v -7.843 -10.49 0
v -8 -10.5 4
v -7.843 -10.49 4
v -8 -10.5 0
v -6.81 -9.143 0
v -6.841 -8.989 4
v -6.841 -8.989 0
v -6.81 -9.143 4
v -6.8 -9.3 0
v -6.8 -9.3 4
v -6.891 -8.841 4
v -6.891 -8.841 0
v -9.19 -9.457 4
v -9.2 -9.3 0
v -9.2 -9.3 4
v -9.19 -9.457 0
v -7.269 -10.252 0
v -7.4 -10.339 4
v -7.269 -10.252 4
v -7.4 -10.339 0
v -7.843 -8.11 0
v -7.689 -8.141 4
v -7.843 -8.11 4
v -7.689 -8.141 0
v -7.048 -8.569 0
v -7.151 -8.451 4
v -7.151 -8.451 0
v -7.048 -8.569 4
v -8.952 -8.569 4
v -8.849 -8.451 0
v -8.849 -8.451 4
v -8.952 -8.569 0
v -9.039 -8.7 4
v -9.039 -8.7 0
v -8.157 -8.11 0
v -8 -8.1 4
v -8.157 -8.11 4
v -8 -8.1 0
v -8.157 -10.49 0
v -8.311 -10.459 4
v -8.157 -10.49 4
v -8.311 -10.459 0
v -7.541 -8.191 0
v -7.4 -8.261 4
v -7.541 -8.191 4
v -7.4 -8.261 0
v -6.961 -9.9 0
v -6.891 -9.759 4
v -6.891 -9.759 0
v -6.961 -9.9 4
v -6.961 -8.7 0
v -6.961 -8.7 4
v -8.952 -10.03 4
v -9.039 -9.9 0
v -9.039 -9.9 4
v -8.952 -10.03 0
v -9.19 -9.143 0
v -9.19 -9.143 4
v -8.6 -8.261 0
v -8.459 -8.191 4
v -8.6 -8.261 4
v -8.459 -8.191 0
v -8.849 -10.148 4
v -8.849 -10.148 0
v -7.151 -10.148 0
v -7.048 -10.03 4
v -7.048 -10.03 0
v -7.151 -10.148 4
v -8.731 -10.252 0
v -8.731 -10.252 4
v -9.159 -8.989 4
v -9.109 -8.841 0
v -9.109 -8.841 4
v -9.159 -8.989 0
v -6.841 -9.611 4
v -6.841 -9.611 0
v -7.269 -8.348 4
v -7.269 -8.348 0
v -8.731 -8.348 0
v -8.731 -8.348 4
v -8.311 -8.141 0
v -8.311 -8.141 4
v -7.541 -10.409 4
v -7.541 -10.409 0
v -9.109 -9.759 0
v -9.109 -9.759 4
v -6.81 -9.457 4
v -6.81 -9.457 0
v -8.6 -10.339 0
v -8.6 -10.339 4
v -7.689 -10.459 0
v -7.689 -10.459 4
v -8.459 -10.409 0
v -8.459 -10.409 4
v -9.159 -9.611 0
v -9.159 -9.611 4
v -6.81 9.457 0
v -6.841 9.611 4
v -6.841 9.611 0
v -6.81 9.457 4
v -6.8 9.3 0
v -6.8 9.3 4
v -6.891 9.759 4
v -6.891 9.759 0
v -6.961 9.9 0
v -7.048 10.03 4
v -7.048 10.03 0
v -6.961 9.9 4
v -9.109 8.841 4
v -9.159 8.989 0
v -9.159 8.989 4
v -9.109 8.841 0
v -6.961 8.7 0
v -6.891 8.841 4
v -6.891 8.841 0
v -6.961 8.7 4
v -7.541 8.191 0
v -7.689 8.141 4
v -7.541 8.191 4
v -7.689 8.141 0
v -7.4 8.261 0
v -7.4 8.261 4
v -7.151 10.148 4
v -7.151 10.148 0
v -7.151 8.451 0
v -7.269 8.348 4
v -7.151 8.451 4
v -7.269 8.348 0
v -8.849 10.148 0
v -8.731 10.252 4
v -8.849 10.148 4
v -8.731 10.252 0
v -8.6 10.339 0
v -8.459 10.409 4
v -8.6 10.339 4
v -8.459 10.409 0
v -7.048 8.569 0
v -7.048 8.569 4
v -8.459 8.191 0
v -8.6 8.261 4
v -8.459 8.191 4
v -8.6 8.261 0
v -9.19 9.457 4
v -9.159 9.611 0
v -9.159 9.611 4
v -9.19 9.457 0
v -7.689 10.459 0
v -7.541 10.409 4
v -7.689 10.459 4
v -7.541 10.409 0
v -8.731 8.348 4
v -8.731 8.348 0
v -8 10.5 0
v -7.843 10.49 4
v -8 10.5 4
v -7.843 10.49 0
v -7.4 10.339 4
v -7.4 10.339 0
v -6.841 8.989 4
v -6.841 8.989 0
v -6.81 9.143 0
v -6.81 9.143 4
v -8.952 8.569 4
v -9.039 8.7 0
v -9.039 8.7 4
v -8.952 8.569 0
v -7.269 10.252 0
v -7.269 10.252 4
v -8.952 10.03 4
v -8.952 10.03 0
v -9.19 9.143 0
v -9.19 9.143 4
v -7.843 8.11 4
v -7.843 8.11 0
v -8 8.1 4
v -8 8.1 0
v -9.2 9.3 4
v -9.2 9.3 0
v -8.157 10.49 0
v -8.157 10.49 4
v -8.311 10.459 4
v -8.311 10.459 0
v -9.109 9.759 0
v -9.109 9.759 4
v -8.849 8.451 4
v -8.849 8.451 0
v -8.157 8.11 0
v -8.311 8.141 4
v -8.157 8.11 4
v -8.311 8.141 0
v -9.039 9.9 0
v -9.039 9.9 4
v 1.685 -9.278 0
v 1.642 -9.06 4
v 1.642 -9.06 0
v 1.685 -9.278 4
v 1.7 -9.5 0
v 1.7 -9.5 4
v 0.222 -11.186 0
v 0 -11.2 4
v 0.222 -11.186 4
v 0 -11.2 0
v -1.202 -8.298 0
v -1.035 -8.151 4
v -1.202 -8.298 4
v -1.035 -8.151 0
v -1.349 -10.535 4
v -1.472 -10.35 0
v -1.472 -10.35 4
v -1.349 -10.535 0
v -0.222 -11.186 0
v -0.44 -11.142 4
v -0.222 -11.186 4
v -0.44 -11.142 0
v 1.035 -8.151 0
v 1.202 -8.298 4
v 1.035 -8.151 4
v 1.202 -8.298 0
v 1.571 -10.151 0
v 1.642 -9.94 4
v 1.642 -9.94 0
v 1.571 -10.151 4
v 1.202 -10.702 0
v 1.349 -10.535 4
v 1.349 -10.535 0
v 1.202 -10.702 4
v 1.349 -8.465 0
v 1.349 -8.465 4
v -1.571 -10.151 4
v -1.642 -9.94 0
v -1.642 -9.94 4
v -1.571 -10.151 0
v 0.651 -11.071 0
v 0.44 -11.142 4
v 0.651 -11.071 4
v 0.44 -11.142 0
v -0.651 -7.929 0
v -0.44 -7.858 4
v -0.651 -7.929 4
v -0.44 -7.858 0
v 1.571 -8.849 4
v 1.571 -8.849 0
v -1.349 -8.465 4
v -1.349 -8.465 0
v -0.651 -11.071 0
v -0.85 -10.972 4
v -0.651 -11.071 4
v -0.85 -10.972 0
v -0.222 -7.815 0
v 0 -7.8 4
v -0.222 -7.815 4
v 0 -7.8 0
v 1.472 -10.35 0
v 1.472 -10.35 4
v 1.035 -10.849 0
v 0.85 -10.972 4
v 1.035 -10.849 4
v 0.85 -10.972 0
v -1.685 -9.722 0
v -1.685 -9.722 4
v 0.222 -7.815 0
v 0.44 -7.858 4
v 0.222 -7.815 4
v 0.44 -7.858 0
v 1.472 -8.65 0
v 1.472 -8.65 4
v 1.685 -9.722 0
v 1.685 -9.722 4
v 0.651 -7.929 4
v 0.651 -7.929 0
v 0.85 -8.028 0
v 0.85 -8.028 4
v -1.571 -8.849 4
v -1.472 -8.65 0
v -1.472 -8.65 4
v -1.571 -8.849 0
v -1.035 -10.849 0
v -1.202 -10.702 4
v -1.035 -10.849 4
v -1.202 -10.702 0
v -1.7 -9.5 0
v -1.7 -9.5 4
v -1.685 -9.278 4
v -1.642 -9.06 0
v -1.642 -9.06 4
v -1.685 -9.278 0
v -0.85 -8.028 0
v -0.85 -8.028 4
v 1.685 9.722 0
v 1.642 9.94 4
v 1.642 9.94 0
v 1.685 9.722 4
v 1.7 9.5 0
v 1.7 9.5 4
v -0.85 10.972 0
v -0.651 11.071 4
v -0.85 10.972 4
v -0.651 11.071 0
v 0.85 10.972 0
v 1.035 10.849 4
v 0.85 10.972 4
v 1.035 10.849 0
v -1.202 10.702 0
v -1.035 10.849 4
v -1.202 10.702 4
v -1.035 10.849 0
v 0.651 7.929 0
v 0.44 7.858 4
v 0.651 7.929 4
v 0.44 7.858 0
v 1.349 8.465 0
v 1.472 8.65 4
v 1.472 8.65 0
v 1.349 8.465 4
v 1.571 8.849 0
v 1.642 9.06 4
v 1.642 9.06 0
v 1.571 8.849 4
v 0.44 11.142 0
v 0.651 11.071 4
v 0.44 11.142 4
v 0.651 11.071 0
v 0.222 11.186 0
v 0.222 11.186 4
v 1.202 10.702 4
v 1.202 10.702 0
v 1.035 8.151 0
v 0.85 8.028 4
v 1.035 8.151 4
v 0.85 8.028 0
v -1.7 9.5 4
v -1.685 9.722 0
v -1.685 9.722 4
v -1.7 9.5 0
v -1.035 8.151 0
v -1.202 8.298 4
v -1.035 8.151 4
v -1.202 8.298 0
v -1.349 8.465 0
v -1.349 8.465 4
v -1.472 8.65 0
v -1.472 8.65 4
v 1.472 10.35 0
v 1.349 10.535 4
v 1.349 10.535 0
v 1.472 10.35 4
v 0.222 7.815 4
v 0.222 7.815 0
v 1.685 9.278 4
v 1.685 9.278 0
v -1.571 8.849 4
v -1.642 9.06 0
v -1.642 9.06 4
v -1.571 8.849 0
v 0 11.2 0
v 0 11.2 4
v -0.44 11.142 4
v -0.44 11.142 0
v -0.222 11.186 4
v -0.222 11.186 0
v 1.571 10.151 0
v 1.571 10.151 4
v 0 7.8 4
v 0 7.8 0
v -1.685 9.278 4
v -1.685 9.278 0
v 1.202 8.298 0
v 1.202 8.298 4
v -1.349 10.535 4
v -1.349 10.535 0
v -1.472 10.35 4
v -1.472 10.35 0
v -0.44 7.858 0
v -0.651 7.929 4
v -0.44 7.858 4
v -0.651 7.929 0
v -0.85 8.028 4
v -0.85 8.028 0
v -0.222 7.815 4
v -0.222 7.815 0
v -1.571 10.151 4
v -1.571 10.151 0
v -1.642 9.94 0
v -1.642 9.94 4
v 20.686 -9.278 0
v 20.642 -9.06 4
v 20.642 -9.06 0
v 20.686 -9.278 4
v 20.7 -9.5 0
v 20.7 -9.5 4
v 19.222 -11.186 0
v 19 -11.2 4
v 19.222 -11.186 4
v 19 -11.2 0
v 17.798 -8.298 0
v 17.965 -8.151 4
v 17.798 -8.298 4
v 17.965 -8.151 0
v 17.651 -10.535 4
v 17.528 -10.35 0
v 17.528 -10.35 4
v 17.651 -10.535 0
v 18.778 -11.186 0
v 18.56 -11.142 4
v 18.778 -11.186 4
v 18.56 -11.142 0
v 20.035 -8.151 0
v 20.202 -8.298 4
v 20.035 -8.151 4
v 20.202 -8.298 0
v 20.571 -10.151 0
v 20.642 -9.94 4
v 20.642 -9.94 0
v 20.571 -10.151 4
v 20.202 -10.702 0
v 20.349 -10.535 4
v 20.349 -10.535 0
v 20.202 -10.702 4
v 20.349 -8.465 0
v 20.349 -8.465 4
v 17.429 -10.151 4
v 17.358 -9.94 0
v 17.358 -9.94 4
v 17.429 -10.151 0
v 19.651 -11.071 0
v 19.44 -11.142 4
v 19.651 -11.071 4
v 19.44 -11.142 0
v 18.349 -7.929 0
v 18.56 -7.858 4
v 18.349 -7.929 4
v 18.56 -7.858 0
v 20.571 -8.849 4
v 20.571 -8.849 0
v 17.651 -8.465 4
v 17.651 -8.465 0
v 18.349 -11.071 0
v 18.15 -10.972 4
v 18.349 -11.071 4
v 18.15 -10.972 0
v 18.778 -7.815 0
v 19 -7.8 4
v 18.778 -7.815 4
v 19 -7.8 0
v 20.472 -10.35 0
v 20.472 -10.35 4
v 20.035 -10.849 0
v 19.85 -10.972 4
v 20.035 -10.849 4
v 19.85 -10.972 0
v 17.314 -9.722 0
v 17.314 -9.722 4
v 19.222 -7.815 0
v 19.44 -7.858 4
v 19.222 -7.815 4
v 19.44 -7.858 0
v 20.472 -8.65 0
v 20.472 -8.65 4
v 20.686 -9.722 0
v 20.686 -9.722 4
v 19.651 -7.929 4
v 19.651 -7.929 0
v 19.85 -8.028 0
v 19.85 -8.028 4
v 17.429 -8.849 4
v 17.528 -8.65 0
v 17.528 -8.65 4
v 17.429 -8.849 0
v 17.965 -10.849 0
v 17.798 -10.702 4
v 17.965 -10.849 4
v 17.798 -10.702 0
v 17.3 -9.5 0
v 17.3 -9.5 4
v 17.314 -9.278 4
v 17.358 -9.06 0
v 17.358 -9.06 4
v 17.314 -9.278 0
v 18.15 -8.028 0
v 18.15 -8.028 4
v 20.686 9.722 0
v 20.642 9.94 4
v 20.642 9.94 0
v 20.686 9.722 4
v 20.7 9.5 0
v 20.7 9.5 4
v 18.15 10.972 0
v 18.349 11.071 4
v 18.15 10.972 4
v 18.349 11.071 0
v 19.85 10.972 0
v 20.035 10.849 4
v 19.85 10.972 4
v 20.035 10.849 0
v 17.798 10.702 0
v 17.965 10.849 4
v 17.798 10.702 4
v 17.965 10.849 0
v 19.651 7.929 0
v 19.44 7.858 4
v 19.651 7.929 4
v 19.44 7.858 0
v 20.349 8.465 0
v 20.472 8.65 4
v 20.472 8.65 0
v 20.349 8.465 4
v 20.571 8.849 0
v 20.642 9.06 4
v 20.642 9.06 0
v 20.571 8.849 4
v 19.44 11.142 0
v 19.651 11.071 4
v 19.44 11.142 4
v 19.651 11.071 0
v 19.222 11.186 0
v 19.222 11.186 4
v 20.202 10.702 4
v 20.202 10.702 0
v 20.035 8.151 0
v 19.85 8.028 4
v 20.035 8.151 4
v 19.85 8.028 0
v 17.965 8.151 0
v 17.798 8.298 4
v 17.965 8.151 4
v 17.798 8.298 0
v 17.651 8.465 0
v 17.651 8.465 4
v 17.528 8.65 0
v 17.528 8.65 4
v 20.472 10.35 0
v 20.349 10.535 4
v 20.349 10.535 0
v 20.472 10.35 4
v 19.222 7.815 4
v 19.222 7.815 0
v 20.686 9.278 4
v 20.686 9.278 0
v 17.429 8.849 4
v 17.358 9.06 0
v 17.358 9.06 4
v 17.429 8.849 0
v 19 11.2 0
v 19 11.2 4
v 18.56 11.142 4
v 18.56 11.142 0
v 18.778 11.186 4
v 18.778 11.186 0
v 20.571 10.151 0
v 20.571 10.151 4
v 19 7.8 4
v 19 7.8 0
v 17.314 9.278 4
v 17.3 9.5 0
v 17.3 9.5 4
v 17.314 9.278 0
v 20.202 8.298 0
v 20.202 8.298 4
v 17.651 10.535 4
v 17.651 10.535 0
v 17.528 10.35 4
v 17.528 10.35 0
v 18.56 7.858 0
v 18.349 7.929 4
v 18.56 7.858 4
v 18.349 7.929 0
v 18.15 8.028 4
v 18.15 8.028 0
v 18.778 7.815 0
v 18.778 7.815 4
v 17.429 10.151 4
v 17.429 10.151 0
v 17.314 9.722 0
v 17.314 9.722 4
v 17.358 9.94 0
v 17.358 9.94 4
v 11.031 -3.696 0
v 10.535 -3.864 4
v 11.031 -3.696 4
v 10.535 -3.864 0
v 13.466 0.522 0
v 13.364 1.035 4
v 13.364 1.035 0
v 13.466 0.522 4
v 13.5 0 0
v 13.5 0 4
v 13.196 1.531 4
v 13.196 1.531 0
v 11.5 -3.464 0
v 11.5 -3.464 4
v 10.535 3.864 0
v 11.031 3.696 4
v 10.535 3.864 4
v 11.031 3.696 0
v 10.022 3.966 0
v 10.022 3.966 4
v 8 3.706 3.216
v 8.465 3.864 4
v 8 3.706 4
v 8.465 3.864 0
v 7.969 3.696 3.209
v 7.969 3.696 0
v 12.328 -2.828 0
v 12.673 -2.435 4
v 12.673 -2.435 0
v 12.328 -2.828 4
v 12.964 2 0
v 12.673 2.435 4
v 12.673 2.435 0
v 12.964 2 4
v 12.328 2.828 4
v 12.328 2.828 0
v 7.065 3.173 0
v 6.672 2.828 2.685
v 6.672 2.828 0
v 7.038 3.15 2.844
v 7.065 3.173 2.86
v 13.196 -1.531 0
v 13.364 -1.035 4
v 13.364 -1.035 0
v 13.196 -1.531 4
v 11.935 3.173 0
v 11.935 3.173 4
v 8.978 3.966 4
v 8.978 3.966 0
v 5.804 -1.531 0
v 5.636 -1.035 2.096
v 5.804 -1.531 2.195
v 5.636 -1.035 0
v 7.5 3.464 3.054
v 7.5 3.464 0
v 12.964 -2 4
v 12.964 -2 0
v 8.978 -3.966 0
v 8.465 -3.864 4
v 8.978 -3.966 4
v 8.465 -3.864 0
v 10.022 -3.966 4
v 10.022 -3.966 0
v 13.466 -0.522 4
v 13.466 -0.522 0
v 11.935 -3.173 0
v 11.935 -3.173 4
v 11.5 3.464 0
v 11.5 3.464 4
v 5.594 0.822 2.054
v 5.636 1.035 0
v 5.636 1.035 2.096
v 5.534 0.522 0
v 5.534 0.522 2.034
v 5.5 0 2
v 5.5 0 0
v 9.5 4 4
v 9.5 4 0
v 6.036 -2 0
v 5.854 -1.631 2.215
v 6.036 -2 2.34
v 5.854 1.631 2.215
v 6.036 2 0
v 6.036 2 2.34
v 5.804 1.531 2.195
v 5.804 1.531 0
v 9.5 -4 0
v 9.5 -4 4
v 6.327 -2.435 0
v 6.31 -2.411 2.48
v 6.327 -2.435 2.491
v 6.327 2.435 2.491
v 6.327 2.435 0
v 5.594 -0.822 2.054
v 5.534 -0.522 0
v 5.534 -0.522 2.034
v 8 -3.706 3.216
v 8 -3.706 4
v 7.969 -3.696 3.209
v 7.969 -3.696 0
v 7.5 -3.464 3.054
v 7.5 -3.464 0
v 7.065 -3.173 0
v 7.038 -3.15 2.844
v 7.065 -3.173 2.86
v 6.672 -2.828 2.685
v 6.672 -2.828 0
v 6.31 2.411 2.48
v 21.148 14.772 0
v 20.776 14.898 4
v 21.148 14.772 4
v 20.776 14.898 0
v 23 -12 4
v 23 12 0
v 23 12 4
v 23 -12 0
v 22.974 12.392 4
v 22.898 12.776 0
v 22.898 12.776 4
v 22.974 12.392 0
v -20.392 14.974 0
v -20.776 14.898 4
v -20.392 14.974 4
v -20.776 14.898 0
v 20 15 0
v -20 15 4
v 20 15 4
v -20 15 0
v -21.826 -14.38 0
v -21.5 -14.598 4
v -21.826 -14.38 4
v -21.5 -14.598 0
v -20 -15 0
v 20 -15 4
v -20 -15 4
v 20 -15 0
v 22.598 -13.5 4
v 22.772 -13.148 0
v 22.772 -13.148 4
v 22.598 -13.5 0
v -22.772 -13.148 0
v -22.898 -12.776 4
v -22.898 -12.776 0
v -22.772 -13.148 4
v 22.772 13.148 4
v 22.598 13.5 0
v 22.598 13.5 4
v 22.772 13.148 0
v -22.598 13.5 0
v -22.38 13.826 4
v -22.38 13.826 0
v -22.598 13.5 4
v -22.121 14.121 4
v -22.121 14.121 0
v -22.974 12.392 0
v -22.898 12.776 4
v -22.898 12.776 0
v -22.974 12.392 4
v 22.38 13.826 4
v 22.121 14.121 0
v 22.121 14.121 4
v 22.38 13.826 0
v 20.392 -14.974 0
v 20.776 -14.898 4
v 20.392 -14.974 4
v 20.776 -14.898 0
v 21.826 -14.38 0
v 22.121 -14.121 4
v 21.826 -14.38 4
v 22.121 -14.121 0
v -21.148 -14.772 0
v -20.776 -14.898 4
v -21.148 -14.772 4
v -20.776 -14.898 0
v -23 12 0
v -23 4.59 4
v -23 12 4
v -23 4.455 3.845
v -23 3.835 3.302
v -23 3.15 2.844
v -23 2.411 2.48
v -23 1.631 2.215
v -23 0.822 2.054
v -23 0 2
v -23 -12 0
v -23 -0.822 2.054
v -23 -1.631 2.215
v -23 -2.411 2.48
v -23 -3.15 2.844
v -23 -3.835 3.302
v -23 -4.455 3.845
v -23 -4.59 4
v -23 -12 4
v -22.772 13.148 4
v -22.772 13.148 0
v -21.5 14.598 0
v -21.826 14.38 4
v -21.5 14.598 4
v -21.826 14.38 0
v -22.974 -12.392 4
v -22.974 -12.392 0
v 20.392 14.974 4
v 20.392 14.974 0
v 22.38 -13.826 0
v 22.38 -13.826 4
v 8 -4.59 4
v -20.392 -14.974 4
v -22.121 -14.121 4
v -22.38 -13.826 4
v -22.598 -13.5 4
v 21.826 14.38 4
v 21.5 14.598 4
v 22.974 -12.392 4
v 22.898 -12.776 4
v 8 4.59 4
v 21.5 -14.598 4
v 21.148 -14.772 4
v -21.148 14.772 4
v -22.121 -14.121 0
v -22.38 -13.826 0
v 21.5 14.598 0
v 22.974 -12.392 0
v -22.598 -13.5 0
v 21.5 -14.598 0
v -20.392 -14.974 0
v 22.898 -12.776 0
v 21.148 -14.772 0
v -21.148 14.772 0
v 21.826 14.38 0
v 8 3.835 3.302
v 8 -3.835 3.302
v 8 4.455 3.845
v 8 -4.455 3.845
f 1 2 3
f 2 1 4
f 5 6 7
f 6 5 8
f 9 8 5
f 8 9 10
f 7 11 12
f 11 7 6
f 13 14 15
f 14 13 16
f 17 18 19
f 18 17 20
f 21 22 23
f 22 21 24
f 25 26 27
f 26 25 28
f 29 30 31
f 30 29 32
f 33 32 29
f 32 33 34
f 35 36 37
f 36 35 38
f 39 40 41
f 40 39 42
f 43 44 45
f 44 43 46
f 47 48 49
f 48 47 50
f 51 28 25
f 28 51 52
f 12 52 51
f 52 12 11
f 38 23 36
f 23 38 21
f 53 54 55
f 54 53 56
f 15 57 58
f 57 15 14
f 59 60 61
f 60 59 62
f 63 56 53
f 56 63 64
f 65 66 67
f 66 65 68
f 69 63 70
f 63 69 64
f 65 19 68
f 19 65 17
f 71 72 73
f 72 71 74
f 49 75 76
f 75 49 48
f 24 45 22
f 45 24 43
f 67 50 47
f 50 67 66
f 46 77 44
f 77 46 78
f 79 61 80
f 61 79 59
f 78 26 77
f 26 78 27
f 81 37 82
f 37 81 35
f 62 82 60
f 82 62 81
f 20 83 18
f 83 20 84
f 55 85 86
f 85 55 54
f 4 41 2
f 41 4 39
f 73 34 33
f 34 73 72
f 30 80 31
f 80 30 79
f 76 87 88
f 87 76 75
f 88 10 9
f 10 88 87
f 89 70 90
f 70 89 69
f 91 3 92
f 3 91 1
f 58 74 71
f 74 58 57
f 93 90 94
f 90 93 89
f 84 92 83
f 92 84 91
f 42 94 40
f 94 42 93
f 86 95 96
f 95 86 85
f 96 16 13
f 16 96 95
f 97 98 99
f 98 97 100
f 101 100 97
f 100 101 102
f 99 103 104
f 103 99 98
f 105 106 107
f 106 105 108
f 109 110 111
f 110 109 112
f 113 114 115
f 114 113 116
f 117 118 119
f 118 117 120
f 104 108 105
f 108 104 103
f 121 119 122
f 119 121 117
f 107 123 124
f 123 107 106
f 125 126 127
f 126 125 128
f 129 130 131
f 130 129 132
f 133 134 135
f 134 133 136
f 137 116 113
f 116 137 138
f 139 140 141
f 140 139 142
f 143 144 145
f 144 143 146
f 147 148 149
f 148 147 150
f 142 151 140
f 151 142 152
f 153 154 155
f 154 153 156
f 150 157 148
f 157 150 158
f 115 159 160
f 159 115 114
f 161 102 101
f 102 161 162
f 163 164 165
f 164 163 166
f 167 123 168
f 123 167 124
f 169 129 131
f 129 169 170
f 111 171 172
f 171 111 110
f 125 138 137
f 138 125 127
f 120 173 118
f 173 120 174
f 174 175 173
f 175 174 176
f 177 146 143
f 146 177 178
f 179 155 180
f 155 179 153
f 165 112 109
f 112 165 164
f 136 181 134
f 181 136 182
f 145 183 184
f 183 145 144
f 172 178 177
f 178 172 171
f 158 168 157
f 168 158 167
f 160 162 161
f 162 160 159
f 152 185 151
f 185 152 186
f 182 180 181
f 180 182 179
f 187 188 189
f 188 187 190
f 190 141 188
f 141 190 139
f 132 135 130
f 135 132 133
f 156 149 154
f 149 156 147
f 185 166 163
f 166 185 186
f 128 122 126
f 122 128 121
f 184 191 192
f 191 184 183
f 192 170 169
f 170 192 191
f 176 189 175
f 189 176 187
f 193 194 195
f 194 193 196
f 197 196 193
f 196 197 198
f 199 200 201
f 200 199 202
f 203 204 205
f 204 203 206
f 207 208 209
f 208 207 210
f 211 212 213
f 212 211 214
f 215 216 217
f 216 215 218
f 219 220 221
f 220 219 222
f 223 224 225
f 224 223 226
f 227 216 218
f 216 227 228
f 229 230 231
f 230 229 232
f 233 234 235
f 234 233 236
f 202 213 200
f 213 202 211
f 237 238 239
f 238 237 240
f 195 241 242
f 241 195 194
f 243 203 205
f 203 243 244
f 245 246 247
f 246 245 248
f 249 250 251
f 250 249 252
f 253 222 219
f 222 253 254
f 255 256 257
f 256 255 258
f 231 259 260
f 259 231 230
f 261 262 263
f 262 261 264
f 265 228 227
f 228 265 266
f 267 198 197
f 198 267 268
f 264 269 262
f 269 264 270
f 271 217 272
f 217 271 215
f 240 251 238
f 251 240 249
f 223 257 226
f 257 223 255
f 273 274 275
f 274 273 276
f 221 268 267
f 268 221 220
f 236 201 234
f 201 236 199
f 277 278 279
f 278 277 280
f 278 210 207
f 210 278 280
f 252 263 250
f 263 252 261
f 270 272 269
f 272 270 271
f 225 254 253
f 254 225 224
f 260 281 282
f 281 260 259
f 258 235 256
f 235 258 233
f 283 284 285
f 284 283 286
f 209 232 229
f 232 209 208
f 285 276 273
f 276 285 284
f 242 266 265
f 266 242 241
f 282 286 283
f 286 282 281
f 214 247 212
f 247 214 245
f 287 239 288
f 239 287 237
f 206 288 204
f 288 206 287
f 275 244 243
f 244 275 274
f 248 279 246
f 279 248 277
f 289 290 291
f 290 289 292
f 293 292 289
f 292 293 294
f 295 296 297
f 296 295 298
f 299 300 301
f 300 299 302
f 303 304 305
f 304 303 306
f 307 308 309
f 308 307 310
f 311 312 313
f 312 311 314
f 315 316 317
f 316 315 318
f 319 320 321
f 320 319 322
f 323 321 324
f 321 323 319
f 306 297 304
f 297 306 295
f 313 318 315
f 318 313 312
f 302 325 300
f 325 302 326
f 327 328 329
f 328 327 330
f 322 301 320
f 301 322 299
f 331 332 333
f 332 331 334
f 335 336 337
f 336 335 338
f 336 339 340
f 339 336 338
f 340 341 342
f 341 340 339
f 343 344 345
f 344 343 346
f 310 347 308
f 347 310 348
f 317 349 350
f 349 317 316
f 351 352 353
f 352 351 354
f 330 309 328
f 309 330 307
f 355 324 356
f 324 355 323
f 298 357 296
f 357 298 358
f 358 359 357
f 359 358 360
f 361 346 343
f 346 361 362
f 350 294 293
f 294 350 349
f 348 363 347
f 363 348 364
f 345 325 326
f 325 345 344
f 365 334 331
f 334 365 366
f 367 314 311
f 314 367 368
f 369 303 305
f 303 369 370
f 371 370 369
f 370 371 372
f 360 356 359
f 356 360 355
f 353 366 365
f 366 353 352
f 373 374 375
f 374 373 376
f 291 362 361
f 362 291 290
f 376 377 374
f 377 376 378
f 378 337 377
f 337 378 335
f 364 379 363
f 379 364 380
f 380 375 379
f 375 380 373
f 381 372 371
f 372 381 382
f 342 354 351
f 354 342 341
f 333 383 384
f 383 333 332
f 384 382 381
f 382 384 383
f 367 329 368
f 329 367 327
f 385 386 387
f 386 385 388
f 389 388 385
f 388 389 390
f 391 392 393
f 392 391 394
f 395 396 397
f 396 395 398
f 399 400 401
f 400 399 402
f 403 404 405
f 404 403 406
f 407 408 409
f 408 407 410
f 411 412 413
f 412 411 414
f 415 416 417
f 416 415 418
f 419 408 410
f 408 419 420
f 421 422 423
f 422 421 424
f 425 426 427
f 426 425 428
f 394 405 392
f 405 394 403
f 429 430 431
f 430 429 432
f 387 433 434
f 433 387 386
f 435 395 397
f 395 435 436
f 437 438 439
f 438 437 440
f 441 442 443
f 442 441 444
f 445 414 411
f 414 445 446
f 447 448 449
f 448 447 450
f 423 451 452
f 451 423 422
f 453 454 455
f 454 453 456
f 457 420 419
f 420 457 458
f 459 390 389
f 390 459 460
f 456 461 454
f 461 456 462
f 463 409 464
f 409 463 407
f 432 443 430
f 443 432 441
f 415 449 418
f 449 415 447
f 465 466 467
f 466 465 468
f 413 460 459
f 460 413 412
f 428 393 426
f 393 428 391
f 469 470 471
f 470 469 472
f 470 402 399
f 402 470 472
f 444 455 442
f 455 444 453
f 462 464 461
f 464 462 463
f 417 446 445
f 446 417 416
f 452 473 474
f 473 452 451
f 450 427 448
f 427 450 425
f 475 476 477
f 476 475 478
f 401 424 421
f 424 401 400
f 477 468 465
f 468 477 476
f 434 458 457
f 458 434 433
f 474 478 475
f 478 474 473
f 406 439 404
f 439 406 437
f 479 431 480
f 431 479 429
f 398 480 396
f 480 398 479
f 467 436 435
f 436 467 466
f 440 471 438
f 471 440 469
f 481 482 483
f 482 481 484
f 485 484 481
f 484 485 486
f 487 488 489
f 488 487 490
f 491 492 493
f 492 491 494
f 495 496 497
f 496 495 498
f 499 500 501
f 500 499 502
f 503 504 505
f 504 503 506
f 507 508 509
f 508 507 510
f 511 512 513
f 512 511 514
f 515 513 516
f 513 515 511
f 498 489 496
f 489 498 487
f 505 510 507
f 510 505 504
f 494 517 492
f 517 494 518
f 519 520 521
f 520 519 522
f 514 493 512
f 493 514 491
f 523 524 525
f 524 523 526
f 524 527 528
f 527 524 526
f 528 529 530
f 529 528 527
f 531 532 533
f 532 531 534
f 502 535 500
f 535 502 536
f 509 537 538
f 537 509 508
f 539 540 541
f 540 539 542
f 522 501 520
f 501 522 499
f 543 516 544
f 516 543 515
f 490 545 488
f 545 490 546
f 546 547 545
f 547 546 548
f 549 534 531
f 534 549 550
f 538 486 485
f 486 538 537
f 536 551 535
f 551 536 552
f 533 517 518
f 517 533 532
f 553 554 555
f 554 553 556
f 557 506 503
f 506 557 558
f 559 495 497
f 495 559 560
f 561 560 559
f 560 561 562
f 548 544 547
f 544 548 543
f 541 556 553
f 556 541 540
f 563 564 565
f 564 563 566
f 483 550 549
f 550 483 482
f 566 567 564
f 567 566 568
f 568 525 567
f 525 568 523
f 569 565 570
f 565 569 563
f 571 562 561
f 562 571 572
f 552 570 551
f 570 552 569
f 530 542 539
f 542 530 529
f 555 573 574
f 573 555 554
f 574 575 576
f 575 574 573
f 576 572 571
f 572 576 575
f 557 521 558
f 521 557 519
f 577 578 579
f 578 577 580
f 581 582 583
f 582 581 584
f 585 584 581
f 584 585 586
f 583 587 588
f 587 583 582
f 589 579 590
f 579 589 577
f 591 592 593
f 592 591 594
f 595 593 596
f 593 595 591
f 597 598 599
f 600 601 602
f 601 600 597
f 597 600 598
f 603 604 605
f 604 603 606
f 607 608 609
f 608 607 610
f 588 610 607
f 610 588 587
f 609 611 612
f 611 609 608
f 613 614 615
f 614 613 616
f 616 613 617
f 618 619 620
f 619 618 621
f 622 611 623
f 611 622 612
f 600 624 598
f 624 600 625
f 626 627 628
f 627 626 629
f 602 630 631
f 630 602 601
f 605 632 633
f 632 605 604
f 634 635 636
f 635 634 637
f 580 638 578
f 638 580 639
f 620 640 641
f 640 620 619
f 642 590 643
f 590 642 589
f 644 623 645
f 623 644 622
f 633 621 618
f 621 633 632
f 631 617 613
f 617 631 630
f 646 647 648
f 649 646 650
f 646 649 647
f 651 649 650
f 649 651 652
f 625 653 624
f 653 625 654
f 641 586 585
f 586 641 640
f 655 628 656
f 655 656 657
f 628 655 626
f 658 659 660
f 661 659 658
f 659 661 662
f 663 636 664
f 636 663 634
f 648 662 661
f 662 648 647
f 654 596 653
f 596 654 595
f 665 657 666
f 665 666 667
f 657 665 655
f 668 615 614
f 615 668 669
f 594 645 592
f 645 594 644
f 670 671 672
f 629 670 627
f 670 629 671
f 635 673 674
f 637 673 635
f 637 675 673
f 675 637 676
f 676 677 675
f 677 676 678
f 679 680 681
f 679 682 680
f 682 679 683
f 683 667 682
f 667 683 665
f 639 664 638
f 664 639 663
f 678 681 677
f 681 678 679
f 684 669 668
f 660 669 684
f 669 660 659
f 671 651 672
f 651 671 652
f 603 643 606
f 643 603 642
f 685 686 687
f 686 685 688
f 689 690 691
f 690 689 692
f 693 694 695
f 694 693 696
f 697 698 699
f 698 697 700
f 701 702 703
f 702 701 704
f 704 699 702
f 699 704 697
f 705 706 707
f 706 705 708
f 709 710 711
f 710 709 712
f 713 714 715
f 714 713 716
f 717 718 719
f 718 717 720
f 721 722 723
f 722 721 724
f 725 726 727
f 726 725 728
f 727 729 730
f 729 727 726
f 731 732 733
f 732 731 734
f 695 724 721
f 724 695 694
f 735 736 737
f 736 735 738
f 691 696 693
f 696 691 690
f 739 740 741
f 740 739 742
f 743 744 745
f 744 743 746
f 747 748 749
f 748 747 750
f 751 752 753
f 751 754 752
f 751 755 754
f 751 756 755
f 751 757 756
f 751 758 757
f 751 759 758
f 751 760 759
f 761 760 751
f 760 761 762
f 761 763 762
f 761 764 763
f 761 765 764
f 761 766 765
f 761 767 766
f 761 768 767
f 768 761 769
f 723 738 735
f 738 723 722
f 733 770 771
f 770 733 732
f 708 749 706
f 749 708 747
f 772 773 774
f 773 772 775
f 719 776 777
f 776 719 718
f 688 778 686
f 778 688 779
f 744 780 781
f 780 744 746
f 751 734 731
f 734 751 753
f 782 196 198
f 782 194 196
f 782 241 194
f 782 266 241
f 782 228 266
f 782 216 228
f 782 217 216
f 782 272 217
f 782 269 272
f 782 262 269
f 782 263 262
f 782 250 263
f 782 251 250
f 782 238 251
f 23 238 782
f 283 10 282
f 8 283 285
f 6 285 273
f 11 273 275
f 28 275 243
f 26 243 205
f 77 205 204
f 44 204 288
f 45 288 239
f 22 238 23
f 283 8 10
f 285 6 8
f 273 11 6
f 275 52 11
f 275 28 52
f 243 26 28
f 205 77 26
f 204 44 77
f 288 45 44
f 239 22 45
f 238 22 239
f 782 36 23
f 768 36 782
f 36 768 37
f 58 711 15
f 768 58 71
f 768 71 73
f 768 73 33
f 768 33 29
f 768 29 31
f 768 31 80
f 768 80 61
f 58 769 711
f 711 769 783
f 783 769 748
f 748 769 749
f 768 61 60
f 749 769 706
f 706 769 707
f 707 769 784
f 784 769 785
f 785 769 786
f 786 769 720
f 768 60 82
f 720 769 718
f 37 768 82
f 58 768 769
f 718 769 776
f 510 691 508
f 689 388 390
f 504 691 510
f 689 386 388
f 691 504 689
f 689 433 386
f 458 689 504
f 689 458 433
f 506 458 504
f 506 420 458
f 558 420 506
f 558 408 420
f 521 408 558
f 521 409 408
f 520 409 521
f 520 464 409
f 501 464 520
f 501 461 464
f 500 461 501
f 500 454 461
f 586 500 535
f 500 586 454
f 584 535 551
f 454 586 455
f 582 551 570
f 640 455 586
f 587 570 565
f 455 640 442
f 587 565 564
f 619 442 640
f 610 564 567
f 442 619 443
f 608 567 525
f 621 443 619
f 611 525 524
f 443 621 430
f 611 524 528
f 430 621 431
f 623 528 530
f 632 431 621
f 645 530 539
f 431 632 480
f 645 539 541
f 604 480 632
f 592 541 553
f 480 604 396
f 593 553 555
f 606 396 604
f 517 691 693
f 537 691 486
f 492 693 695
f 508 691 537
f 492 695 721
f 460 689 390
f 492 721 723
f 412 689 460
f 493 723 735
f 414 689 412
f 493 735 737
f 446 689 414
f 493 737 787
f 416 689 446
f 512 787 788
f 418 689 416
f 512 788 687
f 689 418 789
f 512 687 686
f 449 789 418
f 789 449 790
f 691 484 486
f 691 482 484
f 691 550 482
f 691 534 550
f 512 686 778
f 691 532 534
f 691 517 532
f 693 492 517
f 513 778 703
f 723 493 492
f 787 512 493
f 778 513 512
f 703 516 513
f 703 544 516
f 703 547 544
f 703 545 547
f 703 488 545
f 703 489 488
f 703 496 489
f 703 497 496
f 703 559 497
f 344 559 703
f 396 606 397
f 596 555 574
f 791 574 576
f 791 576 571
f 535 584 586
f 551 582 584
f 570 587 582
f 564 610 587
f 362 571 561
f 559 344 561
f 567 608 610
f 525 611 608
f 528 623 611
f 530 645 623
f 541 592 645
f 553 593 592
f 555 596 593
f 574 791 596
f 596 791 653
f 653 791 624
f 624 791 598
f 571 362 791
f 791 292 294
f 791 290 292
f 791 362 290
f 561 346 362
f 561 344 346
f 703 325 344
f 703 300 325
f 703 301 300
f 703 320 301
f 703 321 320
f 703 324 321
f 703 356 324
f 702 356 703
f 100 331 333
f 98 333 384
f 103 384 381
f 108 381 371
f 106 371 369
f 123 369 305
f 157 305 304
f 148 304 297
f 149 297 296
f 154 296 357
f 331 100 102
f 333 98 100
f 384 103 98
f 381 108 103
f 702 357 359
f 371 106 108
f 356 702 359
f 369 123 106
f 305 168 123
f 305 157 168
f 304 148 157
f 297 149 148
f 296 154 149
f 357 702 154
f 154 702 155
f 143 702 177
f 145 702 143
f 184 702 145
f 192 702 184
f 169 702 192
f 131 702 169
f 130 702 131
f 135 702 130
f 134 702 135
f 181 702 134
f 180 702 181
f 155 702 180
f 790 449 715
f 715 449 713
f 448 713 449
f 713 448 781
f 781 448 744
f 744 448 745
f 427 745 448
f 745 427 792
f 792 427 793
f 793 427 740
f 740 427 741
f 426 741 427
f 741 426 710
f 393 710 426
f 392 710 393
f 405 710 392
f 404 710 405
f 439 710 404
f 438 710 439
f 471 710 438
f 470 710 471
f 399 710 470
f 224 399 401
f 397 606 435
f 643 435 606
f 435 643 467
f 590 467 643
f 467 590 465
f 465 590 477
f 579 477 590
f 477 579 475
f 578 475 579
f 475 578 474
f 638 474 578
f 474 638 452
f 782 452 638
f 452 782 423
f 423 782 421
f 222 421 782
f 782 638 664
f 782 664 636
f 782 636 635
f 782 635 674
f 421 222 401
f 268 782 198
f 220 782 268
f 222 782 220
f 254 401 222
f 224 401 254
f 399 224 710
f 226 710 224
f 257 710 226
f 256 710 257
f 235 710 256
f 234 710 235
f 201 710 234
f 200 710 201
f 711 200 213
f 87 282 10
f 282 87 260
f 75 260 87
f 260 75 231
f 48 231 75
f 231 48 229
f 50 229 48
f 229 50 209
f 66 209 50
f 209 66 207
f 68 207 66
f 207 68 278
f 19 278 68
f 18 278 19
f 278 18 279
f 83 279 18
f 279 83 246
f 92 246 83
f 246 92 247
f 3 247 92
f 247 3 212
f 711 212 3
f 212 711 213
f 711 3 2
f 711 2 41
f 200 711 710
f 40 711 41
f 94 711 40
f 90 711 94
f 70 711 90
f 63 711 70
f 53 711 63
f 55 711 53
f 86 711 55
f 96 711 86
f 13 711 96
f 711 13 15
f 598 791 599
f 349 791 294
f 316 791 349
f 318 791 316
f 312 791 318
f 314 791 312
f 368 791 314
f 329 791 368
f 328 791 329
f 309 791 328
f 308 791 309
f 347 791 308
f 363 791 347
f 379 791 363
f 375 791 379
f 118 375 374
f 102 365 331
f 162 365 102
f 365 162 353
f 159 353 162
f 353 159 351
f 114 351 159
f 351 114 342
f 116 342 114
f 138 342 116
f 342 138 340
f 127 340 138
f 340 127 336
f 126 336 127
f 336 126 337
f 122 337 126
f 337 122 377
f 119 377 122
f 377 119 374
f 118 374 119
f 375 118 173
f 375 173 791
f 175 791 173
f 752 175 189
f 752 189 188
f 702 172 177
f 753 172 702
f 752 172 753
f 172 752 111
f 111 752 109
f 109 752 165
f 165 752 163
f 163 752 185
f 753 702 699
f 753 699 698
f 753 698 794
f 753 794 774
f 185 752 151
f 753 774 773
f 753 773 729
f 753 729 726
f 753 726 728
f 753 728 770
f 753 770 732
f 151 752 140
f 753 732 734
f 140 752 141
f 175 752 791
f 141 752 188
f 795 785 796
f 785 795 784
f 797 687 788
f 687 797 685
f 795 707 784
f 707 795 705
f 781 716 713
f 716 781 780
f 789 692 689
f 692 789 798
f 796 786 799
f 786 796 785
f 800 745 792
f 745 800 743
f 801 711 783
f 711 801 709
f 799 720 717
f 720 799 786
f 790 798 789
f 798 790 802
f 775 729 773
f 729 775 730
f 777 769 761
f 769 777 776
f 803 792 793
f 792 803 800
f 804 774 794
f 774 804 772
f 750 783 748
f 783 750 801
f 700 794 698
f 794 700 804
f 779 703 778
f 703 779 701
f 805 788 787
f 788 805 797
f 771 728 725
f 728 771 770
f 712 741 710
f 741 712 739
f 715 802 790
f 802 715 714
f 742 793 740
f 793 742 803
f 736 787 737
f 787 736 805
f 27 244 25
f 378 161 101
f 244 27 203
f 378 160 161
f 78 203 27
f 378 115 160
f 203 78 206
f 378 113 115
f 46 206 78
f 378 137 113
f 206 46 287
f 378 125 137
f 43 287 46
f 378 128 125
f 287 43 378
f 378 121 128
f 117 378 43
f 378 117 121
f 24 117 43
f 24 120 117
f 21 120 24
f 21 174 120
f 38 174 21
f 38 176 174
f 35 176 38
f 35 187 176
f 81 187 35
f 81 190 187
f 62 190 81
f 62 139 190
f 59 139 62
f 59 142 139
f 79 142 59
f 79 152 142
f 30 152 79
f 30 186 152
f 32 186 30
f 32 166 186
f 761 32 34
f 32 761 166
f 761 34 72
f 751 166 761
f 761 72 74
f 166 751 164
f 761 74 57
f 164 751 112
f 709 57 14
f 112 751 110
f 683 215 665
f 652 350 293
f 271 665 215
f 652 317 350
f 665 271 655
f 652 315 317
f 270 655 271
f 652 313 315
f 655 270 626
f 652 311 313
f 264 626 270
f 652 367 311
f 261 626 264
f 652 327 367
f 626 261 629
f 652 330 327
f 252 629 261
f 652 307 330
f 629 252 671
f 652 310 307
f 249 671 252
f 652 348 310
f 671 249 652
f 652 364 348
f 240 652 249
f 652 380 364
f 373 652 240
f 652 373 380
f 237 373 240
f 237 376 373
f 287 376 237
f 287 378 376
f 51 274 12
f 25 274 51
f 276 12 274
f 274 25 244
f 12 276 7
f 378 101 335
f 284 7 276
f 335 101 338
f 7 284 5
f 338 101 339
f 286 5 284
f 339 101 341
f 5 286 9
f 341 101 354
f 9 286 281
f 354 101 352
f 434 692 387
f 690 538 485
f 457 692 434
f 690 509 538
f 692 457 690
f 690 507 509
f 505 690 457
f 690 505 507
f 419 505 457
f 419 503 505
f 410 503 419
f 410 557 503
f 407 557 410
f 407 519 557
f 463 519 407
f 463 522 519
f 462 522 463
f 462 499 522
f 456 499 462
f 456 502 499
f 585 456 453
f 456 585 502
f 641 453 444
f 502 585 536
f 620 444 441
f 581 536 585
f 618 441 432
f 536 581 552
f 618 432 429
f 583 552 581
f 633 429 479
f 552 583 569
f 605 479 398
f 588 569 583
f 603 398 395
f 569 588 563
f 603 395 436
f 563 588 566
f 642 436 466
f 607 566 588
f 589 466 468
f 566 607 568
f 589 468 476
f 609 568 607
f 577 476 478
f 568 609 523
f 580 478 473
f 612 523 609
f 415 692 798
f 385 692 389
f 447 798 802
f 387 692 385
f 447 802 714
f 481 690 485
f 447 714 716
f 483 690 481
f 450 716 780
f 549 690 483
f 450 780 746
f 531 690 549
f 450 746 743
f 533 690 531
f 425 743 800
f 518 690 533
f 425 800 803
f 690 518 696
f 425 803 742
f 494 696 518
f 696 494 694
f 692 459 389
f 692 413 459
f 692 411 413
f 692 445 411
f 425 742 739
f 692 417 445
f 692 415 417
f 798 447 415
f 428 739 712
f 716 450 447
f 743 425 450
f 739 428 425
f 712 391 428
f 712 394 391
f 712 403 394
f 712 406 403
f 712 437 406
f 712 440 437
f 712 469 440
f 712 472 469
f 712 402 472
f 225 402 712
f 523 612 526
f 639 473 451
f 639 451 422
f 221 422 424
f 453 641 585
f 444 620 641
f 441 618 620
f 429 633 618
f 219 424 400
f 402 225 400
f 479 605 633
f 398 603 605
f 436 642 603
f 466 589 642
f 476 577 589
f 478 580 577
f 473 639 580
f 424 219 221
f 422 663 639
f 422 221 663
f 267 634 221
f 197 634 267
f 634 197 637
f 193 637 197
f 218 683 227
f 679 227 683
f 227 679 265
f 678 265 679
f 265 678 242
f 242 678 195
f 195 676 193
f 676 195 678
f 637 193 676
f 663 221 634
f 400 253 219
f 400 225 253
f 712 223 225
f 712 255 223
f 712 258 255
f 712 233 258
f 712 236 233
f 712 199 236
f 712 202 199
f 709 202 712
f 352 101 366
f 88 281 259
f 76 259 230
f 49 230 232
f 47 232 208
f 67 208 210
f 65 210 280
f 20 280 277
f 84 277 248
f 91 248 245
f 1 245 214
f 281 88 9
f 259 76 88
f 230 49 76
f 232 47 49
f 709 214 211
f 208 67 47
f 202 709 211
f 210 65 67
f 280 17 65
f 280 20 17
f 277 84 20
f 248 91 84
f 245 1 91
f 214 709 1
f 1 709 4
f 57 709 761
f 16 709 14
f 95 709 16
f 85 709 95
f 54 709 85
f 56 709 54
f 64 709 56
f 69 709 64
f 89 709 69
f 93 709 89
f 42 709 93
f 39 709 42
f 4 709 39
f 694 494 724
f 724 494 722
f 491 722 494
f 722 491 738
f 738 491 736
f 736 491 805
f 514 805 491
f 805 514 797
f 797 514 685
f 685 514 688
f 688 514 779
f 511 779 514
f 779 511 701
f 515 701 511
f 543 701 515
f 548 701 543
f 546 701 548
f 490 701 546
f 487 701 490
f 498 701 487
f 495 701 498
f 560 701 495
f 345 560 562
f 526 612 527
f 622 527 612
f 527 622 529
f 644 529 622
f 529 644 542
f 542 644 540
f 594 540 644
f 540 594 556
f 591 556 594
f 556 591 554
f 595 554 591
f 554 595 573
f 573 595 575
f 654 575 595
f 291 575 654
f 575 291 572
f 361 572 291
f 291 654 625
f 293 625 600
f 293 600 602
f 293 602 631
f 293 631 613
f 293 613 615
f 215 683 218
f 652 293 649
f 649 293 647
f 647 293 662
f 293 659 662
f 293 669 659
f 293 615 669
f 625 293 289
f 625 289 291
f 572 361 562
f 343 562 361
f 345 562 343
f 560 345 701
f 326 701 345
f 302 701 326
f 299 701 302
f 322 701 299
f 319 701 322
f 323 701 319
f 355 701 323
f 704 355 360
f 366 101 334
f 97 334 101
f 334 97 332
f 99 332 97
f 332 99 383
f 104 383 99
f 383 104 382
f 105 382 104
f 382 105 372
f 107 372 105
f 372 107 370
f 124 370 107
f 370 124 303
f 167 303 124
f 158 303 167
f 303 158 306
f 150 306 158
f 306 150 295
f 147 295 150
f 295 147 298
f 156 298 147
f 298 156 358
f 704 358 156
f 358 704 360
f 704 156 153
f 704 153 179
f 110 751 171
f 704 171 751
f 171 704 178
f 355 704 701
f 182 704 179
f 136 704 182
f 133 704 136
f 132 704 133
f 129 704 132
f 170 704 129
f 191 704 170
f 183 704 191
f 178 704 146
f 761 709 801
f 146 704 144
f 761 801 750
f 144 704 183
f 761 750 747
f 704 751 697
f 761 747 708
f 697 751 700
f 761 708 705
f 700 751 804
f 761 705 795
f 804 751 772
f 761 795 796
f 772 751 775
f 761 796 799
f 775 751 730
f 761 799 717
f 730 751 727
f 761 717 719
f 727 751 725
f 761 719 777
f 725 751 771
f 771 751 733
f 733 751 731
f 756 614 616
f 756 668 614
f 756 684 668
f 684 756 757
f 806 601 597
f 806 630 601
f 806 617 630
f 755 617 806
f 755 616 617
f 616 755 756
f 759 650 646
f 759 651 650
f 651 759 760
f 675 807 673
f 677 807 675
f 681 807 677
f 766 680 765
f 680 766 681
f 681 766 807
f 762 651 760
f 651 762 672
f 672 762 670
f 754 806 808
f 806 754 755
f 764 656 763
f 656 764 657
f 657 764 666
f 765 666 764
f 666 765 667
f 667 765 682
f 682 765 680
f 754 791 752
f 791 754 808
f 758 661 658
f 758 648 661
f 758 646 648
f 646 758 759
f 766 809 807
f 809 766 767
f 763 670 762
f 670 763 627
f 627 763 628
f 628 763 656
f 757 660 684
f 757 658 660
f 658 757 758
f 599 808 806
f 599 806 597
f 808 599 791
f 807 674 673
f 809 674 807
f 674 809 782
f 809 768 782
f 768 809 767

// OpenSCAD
$fn = 48;

// ---- Parameters ----
plate_t      = 4;
tube_d       = 12.6;
mount_span   = 19;    // iFlight NIDICI 2812 motor bolt pattern (19x19mm)
motor_hole_d = 3.4;   // M3 clearance
wire_hole_d  = 8;      // center hole for motor wires
plate_len    = 46;     // length of the mount plate (tube clamp + motor face)
plate_w      = 30;     // wide enough for the 19mm motor bolt pattern with edge margin
groove_depth = 2;

module base_plate() {
    hull() {
        for (x = [-1,1]) for (y = [-1,1])
            translate([x*(plate_len/2-3), y*(plate_w/2-3), 0])
                cylinder(r=3, h=plate_t);
    }
}

module tube_channel() {
    translate([-plate_len/2 + plate_w/2, 0, plate_t - groove_depth + tube_d/2])
        rotate([0,90,0])
            cylinder(d=tube_d, h=plate_w+2, center=true);
}

module tie_holes() {
    for (yp = [-1,1])
        translate([-plate_len/2 + plate_w/2, yp*(tube_d/2+3), -1])
            cylinder(d=2.4, h=plate_t+2);
}

module motor_holes() {
    mx = plate_len/2 - mount_span/2 - 4;
    for (x = [-1,1]) for (y = [-1,1])
        translate([mx + x*mount_span/2, y*mount_span/2, -1])
            cylinder(d=motor_hole_d, h=plate_t+2);
    translate([mx, 0, -1])
        cylinder(d=wire_hole_d, h=plate_t+2);
}

difference() {
    base_plate();
    tube_channel();
    tie_holes();
    motor_holes();
}
